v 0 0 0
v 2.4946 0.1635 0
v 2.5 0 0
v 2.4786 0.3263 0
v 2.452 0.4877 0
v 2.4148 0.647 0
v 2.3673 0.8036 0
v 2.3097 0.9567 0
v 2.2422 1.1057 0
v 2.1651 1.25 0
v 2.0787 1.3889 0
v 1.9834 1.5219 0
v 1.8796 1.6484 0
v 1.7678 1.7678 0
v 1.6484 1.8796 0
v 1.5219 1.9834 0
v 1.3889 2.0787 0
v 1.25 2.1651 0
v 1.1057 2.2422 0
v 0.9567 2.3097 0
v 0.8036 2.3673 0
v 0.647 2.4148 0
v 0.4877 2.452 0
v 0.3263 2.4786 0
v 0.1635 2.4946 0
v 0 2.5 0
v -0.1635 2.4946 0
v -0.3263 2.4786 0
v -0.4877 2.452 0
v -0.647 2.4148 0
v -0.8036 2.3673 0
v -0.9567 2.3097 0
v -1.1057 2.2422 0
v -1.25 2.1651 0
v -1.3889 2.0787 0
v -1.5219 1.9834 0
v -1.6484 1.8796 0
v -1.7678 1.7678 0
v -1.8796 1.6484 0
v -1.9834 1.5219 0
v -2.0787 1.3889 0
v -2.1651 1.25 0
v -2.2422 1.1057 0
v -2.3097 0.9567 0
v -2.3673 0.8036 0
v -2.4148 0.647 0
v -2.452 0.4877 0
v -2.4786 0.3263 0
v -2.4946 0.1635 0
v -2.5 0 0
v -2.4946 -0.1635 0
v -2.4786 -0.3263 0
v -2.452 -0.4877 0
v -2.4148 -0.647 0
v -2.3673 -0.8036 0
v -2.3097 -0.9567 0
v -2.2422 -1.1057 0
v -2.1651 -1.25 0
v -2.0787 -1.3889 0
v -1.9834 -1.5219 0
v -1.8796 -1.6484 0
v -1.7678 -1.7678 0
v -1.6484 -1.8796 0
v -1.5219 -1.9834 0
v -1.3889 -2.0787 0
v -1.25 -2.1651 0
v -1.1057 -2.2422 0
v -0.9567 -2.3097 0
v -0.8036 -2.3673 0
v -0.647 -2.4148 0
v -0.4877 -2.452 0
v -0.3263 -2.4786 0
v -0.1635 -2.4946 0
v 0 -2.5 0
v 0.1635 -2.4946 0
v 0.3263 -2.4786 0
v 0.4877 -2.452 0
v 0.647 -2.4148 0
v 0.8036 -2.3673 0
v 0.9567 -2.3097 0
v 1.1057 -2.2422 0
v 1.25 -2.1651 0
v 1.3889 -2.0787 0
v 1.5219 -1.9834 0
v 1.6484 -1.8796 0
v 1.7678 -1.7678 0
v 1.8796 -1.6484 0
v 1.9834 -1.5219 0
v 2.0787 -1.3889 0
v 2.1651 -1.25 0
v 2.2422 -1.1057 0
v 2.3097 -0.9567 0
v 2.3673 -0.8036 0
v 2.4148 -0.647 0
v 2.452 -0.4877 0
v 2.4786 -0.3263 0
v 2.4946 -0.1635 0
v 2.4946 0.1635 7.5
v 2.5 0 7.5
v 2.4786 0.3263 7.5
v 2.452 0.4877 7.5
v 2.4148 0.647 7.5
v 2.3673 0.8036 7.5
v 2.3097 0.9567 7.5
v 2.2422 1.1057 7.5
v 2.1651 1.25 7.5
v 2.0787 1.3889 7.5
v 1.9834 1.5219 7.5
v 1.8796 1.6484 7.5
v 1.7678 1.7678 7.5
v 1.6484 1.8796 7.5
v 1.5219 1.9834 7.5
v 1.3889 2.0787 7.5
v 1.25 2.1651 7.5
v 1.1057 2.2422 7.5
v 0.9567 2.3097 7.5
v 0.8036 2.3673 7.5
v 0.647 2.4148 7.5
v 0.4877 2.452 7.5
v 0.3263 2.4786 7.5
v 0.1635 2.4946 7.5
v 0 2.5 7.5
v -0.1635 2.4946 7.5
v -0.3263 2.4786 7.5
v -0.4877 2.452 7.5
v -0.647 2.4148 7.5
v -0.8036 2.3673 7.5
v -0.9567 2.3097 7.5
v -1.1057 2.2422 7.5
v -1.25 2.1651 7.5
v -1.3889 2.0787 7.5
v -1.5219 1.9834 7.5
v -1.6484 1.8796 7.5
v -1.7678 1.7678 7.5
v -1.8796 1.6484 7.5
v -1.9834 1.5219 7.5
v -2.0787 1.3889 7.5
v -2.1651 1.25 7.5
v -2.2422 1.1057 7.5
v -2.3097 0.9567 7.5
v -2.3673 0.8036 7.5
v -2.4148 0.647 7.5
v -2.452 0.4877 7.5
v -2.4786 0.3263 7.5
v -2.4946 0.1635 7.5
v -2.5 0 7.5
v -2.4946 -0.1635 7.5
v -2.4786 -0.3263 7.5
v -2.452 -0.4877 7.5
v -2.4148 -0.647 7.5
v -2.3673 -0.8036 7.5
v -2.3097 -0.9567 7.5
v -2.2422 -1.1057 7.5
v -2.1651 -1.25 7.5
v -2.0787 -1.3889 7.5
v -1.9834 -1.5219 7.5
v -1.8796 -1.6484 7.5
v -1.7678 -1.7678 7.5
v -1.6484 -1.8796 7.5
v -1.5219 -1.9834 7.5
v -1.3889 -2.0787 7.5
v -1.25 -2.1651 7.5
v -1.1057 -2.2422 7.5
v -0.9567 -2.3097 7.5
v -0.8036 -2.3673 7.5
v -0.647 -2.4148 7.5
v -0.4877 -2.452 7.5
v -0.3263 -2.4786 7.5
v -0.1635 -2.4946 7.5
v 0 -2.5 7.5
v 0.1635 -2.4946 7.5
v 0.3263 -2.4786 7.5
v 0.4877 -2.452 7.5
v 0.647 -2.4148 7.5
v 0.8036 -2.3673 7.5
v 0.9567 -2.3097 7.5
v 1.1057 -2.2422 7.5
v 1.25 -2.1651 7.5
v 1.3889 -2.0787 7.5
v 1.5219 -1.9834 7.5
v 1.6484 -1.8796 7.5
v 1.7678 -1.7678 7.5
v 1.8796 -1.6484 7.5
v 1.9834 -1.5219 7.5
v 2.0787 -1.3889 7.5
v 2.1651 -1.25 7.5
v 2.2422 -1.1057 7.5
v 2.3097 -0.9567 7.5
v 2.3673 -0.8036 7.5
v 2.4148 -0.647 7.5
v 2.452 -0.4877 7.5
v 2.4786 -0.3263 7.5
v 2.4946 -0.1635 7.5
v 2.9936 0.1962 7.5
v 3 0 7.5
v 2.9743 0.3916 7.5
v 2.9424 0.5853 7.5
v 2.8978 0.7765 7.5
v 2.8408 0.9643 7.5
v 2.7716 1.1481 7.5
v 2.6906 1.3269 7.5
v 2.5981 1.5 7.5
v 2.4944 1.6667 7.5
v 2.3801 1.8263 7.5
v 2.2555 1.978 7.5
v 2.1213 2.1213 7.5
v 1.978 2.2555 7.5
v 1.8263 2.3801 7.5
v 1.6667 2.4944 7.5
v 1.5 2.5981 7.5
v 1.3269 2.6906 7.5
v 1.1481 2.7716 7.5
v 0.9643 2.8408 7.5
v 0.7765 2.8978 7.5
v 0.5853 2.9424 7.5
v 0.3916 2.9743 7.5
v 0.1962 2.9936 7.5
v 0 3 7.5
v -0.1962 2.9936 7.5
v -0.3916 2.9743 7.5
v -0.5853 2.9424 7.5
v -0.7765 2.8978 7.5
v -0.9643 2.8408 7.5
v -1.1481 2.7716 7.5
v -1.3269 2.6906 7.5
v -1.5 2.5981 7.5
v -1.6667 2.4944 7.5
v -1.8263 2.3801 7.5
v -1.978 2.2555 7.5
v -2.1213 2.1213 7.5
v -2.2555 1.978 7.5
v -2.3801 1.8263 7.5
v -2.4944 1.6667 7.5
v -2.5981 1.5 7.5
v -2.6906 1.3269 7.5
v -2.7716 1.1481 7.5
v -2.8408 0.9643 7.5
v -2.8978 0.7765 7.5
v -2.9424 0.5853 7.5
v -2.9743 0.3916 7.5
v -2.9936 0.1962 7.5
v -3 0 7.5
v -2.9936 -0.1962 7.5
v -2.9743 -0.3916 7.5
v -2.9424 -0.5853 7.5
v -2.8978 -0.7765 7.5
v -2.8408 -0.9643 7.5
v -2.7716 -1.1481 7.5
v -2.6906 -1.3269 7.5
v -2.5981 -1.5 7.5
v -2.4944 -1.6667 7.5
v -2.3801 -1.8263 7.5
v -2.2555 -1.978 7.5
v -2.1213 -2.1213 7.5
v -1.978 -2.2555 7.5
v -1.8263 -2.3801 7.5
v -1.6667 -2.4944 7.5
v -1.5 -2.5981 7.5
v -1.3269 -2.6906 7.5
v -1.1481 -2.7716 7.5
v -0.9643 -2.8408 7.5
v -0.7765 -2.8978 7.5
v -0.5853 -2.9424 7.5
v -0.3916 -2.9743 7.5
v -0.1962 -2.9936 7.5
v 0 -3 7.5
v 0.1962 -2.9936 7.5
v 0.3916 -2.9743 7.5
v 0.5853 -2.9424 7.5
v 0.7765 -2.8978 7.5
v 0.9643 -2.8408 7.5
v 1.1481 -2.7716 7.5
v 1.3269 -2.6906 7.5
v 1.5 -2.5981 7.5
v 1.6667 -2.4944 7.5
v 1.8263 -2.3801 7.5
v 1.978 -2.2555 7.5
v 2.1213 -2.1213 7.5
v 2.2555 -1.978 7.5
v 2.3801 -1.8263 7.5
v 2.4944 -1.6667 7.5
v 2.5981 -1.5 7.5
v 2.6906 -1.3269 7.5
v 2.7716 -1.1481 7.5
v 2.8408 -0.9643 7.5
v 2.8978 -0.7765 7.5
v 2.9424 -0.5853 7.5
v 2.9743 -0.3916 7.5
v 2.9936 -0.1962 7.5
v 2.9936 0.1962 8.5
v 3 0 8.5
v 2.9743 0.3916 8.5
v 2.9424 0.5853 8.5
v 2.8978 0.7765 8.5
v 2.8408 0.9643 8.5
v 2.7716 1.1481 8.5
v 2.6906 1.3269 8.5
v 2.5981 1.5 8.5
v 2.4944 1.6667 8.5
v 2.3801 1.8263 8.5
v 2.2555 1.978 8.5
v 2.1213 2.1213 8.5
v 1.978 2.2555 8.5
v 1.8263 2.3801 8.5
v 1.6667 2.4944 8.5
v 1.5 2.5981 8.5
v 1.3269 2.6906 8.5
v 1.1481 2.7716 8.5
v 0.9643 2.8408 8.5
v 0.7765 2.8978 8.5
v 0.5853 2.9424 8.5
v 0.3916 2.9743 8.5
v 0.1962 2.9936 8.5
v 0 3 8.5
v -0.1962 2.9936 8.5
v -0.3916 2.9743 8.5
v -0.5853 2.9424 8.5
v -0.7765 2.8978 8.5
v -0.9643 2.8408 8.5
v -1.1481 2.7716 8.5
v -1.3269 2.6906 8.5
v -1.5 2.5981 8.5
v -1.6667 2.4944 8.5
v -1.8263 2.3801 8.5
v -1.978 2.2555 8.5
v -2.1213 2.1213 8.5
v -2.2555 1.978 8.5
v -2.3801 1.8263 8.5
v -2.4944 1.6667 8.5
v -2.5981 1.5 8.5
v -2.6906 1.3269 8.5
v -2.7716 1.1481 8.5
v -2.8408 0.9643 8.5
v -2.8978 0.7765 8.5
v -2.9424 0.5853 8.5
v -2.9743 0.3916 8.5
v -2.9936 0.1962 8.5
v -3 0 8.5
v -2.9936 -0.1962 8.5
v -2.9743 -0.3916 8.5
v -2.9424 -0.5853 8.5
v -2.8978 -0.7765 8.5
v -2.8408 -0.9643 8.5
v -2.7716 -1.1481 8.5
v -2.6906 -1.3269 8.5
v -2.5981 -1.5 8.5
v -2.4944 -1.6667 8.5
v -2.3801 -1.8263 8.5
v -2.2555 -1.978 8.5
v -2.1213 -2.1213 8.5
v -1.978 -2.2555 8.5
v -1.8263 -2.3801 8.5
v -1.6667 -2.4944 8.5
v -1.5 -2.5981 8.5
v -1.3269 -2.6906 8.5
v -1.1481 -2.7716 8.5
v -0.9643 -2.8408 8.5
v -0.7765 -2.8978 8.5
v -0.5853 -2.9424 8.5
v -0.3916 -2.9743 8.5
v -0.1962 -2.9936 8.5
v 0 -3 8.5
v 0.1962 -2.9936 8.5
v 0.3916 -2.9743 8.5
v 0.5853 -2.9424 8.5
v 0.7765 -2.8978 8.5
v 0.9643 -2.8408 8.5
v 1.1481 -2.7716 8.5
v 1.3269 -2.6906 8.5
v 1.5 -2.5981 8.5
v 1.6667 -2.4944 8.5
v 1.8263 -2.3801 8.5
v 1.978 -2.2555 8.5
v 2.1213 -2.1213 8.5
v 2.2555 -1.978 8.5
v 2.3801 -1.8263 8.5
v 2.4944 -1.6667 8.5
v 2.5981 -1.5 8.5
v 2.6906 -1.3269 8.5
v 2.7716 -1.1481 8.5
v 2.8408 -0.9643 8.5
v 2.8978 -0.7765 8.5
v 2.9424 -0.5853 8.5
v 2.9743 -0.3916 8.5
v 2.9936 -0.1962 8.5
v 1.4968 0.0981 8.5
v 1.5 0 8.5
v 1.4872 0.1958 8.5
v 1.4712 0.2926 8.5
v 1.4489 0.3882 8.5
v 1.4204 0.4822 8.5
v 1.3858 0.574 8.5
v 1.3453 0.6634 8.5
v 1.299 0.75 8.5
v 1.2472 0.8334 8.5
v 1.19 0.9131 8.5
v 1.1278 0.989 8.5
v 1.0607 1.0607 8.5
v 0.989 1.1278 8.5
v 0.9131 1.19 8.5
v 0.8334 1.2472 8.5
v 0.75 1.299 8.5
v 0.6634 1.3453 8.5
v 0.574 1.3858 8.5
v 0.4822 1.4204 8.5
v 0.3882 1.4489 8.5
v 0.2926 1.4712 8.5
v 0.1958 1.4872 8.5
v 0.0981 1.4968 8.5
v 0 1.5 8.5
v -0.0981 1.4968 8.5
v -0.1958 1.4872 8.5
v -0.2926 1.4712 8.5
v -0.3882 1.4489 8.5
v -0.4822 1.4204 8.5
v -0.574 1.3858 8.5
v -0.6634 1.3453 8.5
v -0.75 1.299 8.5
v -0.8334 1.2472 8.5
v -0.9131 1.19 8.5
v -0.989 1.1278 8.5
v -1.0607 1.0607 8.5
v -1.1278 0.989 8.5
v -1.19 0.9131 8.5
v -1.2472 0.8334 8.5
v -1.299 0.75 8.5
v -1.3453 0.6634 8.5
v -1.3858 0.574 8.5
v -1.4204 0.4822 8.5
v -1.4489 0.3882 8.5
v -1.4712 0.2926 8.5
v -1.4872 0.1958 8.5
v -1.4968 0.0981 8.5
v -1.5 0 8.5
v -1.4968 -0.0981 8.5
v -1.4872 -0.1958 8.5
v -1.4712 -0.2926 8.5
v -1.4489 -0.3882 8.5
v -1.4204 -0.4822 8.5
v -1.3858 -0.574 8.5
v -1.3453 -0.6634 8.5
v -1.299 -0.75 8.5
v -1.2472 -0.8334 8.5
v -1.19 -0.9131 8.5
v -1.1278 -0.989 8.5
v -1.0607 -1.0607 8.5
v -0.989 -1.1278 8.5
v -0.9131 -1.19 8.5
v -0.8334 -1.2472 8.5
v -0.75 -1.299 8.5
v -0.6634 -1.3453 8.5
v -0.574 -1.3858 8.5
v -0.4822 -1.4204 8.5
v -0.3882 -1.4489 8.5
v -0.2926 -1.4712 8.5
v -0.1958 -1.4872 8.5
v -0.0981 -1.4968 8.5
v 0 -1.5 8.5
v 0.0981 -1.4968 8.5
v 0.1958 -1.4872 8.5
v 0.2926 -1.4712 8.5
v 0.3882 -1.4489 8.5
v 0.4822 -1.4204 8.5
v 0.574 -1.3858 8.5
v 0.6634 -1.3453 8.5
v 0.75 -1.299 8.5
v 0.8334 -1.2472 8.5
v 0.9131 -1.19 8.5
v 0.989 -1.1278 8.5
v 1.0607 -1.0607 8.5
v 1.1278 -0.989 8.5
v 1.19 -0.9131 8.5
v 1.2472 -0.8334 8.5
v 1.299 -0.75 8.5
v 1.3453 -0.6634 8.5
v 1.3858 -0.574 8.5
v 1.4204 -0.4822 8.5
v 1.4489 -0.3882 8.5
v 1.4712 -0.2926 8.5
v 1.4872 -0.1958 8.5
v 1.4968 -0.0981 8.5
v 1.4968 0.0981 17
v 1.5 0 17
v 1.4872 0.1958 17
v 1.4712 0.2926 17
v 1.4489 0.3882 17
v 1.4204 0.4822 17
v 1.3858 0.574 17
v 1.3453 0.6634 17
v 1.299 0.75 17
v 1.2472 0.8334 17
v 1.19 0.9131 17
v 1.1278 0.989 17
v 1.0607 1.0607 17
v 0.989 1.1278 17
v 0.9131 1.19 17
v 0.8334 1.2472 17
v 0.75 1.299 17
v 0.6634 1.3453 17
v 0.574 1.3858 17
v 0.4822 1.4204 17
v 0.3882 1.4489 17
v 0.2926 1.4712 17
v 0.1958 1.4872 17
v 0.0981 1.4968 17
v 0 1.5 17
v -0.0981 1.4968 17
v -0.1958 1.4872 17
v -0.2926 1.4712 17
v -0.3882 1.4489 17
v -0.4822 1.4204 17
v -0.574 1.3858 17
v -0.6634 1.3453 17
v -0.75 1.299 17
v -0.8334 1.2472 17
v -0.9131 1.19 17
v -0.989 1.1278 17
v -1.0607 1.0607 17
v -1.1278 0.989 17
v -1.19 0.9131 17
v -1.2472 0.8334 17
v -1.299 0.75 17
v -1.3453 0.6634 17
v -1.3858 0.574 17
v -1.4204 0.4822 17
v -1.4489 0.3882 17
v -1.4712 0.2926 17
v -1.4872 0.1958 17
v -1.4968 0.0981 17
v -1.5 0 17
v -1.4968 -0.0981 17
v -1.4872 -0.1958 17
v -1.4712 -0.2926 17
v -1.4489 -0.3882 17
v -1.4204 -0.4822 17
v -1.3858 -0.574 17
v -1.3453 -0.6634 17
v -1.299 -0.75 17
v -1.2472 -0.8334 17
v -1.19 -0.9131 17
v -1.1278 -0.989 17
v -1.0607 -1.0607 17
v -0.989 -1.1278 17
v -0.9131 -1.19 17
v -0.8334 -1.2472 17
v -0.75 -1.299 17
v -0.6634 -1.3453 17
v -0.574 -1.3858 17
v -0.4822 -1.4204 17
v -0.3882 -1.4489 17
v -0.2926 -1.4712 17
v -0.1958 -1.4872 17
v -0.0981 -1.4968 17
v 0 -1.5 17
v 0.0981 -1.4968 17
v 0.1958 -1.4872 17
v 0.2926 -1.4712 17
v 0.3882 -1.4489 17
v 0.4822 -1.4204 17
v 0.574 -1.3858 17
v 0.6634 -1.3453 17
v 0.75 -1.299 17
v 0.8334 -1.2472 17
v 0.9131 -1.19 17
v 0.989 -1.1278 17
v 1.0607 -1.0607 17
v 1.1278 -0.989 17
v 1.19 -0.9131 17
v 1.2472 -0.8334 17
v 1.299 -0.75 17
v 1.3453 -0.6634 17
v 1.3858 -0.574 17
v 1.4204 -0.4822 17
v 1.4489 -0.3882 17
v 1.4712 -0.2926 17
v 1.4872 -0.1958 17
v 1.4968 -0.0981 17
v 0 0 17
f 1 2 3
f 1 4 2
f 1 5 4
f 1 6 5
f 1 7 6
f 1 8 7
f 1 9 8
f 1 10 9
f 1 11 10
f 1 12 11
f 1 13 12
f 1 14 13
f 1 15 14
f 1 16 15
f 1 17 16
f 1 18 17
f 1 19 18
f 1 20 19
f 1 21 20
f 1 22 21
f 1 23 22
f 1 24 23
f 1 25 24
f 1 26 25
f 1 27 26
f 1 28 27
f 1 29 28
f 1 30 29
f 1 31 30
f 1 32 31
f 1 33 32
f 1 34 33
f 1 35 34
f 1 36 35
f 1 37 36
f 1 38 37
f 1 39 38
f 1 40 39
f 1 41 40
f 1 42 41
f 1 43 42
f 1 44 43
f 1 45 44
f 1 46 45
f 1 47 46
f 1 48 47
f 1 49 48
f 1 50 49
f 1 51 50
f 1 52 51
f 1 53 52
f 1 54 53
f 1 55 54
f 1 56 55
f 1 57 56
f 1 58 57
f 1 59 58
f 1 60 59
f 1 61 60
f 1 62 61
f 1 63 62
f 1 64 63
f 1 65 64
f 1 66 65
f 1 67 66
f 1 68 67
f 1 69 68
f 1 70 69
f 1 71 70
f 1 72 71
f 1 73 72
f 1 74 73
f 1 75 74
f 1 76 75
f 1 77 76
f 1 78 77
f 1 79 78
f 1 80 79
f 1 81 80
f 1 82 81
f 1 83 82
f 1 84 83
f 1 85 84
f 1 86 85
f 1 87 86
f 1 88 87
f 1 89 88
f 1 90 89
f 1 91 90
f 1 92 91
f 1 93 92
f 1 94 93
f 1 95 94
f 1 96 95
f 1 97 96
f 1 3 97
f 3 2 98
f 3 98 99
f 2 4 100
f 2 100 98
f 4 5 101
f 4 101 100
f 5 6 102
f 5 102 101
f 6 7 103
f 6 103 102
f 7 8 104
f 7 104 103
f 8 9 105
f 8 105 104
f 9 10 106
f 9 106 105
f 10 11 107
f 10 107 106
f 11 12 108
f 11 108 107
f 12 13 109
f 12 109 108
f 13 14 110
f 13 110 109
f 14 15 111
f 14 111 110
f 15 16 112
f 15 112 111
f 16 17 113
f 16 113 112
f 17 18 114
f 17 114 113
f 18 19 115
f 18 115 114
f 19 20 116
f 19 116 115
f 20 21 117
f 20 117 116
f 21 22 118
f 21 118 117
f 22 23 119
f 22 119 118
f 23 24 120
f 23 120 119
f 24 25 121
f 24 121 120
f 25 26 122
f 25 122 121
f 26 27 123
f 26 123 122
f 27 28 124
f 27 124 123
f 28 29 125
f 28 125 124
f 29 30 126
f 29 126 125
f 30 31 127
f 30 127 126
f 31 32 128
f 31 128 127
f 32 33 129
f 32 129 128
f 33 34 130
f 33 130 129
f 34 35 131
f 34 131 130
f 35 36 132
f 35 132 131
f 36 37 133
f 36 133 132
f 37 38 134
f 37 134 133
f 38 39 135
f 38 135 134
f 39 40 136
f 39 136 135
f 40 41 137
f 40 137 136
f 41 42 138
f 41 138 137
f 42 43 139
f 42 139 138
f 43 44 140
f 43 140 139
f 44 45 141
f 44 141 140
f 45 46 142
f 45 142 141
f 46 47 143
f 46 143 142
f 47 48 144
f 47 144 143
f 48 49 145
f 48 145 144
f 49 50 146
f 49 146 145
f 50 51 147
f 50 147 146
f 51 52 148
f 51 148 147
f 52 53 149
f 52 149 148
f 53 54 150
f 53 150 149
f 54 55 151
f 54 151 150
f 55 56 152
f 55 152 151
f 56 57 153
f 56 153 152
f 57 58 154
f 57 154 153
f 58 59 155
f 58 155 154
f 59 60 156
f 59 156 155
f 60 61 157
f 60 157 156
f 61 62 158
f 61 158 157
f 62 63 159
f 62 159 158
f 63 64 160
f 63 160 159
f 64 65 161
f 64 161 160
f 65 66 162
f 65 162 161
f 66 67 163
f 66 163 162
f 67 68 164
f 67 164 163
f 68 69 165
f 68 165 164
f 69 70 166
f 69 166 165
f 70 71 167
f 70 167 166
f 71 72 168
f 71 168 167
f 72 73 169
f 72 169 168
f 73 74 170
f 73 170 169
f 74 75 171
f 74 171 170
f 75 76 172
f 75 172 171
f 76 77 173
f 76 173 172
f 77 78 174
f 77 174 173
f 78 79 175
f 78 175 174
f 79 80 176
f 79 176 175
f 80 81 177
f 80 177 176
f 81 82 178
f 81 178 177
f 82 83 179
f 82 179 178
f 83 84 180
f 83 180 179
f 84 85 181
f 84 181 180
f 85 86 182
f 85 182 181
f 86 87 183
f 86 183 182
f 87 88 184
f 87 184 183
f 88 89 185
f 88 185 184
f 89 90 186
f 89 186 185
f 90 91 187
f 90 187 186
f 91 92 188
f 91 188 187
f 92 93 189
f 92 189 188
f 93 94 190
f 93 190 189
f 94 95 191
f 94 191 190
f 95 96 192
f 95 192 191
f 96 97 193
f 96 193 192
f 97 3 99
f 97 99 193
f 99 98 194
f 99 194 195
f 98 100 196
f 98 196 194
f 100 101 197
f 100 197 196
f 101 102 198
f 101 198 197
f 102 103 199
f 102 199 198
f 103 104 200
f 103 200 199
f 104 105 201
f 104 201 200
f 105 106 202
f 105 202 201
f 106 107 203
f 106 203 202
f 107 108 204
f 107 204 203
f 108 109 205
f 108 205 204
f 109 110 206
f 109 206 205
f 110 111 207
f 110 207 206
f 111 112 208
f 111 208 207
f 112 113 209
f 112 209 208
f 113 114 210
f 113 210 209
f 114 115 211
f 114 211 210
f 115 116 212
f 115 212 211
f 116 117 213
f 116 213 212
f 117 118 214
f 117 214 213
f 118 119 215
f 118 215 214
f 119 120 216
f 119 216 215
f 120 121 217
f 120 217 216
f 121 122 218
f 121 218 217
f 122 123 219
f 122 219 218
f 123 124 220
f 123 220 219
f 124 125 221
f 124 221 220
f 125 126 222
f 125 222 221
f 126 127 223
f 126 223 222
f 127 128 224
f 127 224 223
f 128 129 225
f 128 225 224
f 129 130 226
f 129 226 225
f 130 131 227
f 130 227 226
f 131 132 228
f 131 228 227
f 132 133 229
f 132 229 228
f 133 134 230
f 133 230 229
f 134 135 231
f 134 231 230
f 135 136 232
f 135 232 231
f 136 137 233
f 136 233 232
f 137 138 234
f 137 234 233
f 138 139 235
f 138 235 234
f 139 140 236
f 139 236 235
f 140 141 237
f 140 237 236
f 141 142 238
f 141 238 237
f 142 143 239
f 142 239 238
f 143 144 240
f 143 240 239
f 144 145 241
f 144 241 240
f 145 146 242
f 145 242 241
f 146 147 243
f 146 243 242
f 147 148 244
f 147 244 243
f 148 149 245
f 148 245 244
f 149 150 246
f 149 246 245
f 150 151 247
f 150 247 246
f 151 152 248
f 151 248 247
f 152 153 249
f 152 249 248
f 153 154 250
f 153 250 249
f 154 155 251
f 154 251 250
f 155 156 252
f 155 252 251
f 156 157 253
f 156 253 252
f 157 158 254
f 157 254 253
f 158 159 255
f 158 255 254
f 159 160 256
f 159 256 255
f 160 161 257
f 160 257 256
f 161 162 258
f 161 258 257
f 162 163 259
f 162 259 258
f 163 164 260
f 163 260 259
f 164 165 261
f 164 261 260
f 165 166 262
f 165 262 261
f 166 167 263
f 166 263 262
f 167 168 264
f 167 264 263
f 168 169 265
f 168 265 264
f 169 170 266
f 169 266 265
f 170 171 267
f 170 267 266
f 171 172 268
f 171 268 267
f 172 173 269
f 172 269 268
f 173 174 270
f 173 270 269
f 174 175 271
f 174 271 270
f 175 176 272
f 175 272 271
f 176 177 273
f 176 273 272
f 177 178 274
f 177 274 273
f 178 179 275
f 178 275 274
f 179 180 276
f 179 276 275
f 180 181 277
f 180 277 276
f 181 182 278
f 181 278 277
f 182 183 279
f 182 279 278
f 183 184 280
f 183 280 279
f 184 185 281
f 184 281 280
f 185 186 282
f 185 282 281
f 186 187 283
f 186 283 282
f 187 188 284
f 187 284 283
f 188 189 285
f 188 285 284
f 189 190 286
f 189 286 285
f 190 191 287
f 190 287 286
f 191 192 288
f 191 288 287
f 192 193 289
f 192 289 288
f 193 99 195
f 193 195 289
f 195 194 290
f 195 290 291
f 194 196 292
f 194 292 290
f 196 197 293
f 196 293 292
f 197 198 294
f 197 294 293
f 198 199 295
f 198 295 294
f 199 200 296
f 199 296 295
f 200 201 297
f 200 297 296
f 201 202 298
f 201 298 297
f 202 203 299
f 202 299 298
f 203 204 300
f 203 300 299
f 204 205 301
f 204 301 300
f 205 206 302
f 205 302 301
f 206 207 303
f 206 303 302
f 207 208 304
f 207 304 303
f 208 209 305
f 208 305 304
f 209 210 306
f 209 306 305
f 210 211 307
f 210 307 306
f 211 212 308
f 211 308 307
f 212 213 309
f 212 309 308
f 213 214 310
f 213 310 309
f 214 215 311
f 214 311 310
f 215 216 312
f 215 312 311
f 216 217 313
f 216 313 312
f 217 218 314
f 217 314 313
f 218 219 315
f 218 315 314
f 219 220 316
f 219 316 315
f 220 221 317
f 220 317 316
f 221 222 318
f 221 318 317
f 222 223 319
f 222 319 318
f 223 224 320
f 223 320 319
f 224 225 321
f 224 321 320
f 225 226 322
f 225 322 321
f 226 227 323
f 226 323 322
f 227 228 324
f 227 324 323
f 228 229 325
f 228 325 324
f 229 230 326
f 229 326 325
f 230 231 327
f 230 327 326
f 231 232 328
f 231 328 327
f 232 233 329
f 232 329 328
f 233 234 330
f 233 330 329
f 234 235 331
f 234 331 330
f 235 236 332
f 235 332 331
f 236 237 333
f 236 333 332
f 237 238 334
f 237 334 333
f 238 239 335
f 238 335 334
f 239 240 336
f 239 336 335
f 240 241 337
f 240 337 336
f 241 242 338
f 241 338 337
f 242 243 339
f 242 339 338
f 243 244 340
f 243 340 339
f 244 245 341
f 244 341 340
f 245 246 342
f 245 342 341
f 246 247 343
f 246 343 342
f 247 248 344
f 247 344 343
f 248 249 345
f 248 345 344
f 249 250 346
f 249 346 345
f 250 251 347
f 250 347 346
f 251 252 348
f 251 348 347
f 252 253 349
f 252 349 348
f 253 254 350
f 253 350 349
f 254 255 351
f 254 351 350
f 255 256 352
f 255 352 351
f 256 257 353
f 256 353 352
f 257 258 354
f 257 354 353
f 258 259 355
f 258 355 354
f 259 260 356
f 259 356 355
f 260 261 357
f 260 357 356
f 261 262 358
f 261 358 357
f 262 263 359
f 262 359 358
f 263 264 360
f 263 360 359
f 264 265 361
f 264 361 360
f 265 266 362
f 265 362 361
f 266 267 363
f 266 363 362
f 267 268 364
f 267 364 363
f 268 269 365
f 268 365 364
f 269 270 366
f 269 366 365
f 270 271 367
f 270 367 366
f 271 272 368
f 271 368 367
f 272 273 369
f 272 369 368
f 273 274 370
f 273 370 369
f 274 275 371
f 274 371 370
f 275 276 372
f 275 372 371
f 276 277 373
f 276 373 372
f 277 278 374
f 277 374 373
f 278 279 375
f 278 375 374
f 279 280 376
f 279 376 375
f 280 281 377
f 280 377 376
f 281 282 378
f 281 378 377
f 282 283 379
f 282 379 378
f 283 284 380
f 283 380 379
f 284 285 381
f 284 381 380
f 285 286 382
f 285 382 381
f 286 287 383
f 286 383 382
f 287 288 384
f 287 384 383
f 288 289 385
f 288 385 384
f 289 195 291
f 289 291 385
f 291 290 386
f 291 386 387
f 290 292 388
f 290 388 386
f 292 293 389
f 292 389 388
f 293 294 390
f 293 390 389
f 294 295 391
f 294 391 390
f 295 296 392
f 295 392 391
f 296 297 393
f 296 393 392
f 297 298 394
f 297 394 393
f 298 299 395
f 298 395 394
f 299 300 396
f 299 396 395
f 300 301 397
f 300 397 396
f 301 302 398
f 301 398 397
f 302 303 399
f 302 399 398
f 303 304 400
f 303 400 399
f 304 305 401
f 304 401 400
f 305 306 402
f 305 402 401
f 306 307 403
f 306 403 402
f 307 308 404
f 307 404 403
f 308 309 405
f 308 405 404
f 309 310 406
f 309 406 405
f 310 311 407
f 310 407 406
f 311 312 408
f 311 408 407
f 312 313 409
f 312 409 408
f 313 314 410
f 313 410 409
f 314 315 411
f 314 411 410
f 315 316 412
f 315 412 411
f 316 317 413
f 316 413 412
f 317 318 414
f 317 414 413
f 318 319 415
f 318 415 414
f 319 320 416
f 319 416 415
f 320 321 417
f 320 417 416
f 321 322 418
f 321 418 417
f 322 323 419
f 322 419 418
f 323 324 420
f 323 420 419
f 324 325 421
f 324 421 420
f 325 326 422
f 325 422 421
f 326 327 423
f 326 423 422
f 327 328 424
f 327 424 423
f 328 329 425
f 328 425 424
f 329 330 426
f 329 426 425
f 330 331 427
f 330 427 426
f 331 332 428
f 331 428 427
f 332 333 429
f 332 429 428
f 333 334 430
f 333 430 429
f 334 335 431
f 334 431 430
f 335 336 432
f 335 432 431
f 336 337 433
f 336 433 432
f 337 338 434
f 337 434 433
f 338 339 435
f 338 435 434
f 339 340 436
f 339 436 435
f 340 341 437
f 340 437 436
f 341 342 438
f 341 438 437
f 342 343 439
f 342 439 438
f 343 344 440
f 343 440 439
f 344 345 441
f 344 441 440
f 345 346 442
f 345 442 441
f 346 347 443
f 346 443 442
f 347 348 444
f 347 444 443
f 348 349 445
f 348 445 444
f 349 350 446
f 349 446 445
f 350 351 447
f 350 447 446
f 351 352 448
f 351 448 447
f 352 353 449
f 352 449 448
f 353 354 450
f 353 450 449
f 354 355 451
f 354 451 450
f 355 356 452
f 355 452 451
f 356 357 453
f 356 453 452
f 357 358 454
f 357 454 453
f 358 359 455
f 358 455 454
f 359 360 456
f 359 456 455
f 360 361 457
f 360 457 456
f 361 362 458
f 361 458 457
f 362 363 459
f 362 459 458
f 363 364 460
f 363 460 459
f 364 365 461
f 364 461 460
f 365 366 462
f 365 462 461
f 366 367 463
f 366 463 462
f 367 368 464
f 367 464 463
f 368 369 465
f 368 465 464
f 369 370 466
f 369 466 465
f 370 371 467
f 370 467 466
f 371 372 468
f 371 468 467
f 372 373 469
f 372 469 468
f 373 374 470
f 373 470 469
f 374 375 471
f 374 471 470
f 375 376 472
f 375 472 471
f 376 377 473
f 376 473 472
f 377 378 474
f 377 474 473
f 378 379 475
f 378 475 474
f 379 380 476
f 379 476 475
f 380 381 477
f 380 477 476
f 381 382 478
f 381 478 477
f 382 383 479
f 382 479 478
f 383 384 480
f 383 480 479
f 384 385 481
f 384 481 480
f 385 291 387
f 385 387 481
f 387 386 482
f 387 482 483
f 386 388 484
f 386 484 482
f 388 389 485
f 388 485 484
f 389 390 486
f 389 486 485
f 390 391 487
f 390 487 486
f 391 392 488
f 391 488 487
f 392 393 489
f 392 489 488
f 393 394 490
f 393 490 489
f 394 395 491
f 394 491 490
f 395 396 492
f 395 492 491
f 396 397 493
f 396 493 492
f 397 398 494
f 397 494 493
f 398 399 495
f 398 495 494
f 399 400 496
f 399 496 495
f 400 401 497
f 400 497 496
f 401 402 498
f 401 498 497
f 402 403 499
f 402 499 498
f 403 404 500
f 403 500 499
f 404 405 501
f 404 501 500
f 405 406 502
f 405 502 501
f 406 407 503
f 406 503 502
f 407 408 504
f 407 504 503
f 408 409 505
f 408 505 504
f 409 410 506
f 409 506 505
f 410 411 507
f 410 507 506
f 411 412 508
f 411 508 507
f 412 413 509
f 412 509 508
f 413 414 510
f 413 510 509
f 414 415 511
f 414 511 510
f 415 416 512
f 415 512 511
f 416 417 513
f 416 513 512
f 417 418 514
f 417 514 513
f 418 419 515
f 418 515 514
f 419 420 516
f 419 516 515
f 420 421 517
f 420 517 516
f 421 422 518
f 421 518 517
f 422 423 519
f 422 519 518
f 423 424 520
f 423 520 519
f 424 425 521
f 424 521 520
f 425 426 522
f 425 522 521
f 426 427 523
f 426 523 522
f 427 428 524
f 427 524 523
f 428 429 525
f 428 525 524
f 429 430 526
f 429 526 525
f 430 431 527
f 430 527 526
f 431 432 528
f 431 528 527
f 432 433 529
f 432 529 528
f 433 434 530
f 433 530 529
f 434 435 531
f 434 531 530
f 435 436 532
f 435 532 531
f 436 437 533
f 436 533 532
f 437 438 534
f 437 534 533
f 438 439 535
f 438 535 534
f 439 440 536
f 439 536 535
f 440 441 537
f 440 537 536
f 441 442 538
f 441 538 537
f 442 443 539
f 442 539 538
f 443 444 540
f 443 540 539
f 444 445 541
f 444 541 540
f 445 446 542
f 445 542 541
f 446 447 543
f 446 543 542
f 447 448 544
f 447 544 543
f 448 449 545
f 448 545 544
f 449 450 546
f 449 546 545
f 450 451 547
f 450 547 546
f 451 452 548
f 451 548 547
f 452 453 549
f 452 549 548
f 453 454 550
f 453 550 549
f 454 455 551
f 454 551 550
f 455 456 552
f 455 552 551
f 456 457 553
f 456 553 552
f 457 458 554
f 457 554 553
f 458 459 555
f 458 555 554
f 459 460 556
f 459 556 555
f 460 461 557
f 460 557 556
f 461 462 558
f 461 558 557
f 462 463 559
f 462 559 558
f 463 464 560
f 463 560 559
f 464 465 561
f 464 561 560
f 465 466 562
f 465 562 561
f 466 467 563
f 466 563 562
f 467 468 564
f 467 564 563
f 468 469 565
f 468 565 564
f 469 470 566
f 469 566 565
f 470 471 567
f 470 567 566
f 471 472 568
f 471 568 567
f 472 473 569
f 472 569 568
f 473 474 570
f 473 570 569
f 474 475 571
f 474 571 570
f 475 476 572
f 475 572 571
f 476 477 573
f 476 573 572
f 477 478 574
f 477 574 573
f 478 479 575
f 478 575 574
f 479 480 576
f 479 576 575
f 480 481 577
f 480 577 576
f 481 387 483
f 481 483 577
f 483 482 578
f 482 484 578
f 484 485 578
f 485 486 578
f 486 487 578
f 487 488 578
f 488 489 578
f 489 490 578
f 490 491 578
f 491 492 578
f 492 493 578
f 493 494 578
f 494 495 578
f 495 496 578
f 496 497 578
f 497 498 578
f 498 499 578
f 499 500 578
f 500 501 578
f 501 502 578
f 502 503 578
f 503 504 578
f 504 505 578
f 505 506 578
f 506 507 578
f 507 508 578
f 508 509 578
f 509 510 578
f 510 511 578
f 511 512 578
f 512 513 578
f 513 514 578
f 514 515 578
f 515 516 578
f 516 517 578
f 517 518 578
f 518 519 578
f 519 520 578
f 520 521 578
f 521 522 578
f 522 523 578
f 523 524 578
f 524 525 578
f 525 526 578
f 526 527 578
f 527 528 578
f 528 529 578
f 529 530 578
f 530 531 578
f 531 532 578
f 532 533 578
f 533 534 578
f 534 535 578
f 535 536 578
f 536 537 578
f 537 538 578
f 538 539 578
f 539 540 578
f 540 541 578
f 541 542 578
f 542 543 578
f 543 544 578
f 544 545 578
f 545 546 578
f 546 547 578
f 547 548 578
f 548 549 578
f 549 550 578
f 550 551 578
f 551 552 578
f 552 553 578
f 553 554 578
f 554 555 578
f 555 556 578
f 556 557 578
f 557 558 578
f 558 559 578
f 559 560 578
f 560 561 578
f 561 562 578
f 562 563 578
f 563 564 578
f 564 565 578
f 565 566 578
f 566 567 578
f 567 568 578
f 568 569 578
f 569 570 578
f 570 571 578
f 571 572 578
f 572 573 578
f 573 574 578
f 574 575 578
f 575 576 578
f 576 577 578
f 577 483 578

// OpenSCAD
// 销钉 3D 模型（按零件 #114258 图纸），单位 mm
// 由三段同轴圆柱组成，总高 17 mm

$fn = 96;

total_h   = 17.0;   // 总高
top_d     = 3.0;    // 上段直径
flange_d  = 6.0;    // 中间法兰直径
flange_h  = 1.0;    // 中间法兰厚度
bottom_d  = 5.0;    // 下段直径
bottom_h  = 7.5;    // 下段高度
top_h     = total_h - flange_h - bottom_h;  // 上段高度 = 8.5

union() {
    cylinder(d = bottom_d, h = bottom_h);                       // 下段 Ø5
    translate([0, 0, bottom_h]) cylinder(d = flange_d, h = flange_h);   // 中段 Ø6 × 1
    translate([0, 0, bottom_h + flange_h]) cylinder(d = top_d, h = top_h); // 上段 Ø3
}
